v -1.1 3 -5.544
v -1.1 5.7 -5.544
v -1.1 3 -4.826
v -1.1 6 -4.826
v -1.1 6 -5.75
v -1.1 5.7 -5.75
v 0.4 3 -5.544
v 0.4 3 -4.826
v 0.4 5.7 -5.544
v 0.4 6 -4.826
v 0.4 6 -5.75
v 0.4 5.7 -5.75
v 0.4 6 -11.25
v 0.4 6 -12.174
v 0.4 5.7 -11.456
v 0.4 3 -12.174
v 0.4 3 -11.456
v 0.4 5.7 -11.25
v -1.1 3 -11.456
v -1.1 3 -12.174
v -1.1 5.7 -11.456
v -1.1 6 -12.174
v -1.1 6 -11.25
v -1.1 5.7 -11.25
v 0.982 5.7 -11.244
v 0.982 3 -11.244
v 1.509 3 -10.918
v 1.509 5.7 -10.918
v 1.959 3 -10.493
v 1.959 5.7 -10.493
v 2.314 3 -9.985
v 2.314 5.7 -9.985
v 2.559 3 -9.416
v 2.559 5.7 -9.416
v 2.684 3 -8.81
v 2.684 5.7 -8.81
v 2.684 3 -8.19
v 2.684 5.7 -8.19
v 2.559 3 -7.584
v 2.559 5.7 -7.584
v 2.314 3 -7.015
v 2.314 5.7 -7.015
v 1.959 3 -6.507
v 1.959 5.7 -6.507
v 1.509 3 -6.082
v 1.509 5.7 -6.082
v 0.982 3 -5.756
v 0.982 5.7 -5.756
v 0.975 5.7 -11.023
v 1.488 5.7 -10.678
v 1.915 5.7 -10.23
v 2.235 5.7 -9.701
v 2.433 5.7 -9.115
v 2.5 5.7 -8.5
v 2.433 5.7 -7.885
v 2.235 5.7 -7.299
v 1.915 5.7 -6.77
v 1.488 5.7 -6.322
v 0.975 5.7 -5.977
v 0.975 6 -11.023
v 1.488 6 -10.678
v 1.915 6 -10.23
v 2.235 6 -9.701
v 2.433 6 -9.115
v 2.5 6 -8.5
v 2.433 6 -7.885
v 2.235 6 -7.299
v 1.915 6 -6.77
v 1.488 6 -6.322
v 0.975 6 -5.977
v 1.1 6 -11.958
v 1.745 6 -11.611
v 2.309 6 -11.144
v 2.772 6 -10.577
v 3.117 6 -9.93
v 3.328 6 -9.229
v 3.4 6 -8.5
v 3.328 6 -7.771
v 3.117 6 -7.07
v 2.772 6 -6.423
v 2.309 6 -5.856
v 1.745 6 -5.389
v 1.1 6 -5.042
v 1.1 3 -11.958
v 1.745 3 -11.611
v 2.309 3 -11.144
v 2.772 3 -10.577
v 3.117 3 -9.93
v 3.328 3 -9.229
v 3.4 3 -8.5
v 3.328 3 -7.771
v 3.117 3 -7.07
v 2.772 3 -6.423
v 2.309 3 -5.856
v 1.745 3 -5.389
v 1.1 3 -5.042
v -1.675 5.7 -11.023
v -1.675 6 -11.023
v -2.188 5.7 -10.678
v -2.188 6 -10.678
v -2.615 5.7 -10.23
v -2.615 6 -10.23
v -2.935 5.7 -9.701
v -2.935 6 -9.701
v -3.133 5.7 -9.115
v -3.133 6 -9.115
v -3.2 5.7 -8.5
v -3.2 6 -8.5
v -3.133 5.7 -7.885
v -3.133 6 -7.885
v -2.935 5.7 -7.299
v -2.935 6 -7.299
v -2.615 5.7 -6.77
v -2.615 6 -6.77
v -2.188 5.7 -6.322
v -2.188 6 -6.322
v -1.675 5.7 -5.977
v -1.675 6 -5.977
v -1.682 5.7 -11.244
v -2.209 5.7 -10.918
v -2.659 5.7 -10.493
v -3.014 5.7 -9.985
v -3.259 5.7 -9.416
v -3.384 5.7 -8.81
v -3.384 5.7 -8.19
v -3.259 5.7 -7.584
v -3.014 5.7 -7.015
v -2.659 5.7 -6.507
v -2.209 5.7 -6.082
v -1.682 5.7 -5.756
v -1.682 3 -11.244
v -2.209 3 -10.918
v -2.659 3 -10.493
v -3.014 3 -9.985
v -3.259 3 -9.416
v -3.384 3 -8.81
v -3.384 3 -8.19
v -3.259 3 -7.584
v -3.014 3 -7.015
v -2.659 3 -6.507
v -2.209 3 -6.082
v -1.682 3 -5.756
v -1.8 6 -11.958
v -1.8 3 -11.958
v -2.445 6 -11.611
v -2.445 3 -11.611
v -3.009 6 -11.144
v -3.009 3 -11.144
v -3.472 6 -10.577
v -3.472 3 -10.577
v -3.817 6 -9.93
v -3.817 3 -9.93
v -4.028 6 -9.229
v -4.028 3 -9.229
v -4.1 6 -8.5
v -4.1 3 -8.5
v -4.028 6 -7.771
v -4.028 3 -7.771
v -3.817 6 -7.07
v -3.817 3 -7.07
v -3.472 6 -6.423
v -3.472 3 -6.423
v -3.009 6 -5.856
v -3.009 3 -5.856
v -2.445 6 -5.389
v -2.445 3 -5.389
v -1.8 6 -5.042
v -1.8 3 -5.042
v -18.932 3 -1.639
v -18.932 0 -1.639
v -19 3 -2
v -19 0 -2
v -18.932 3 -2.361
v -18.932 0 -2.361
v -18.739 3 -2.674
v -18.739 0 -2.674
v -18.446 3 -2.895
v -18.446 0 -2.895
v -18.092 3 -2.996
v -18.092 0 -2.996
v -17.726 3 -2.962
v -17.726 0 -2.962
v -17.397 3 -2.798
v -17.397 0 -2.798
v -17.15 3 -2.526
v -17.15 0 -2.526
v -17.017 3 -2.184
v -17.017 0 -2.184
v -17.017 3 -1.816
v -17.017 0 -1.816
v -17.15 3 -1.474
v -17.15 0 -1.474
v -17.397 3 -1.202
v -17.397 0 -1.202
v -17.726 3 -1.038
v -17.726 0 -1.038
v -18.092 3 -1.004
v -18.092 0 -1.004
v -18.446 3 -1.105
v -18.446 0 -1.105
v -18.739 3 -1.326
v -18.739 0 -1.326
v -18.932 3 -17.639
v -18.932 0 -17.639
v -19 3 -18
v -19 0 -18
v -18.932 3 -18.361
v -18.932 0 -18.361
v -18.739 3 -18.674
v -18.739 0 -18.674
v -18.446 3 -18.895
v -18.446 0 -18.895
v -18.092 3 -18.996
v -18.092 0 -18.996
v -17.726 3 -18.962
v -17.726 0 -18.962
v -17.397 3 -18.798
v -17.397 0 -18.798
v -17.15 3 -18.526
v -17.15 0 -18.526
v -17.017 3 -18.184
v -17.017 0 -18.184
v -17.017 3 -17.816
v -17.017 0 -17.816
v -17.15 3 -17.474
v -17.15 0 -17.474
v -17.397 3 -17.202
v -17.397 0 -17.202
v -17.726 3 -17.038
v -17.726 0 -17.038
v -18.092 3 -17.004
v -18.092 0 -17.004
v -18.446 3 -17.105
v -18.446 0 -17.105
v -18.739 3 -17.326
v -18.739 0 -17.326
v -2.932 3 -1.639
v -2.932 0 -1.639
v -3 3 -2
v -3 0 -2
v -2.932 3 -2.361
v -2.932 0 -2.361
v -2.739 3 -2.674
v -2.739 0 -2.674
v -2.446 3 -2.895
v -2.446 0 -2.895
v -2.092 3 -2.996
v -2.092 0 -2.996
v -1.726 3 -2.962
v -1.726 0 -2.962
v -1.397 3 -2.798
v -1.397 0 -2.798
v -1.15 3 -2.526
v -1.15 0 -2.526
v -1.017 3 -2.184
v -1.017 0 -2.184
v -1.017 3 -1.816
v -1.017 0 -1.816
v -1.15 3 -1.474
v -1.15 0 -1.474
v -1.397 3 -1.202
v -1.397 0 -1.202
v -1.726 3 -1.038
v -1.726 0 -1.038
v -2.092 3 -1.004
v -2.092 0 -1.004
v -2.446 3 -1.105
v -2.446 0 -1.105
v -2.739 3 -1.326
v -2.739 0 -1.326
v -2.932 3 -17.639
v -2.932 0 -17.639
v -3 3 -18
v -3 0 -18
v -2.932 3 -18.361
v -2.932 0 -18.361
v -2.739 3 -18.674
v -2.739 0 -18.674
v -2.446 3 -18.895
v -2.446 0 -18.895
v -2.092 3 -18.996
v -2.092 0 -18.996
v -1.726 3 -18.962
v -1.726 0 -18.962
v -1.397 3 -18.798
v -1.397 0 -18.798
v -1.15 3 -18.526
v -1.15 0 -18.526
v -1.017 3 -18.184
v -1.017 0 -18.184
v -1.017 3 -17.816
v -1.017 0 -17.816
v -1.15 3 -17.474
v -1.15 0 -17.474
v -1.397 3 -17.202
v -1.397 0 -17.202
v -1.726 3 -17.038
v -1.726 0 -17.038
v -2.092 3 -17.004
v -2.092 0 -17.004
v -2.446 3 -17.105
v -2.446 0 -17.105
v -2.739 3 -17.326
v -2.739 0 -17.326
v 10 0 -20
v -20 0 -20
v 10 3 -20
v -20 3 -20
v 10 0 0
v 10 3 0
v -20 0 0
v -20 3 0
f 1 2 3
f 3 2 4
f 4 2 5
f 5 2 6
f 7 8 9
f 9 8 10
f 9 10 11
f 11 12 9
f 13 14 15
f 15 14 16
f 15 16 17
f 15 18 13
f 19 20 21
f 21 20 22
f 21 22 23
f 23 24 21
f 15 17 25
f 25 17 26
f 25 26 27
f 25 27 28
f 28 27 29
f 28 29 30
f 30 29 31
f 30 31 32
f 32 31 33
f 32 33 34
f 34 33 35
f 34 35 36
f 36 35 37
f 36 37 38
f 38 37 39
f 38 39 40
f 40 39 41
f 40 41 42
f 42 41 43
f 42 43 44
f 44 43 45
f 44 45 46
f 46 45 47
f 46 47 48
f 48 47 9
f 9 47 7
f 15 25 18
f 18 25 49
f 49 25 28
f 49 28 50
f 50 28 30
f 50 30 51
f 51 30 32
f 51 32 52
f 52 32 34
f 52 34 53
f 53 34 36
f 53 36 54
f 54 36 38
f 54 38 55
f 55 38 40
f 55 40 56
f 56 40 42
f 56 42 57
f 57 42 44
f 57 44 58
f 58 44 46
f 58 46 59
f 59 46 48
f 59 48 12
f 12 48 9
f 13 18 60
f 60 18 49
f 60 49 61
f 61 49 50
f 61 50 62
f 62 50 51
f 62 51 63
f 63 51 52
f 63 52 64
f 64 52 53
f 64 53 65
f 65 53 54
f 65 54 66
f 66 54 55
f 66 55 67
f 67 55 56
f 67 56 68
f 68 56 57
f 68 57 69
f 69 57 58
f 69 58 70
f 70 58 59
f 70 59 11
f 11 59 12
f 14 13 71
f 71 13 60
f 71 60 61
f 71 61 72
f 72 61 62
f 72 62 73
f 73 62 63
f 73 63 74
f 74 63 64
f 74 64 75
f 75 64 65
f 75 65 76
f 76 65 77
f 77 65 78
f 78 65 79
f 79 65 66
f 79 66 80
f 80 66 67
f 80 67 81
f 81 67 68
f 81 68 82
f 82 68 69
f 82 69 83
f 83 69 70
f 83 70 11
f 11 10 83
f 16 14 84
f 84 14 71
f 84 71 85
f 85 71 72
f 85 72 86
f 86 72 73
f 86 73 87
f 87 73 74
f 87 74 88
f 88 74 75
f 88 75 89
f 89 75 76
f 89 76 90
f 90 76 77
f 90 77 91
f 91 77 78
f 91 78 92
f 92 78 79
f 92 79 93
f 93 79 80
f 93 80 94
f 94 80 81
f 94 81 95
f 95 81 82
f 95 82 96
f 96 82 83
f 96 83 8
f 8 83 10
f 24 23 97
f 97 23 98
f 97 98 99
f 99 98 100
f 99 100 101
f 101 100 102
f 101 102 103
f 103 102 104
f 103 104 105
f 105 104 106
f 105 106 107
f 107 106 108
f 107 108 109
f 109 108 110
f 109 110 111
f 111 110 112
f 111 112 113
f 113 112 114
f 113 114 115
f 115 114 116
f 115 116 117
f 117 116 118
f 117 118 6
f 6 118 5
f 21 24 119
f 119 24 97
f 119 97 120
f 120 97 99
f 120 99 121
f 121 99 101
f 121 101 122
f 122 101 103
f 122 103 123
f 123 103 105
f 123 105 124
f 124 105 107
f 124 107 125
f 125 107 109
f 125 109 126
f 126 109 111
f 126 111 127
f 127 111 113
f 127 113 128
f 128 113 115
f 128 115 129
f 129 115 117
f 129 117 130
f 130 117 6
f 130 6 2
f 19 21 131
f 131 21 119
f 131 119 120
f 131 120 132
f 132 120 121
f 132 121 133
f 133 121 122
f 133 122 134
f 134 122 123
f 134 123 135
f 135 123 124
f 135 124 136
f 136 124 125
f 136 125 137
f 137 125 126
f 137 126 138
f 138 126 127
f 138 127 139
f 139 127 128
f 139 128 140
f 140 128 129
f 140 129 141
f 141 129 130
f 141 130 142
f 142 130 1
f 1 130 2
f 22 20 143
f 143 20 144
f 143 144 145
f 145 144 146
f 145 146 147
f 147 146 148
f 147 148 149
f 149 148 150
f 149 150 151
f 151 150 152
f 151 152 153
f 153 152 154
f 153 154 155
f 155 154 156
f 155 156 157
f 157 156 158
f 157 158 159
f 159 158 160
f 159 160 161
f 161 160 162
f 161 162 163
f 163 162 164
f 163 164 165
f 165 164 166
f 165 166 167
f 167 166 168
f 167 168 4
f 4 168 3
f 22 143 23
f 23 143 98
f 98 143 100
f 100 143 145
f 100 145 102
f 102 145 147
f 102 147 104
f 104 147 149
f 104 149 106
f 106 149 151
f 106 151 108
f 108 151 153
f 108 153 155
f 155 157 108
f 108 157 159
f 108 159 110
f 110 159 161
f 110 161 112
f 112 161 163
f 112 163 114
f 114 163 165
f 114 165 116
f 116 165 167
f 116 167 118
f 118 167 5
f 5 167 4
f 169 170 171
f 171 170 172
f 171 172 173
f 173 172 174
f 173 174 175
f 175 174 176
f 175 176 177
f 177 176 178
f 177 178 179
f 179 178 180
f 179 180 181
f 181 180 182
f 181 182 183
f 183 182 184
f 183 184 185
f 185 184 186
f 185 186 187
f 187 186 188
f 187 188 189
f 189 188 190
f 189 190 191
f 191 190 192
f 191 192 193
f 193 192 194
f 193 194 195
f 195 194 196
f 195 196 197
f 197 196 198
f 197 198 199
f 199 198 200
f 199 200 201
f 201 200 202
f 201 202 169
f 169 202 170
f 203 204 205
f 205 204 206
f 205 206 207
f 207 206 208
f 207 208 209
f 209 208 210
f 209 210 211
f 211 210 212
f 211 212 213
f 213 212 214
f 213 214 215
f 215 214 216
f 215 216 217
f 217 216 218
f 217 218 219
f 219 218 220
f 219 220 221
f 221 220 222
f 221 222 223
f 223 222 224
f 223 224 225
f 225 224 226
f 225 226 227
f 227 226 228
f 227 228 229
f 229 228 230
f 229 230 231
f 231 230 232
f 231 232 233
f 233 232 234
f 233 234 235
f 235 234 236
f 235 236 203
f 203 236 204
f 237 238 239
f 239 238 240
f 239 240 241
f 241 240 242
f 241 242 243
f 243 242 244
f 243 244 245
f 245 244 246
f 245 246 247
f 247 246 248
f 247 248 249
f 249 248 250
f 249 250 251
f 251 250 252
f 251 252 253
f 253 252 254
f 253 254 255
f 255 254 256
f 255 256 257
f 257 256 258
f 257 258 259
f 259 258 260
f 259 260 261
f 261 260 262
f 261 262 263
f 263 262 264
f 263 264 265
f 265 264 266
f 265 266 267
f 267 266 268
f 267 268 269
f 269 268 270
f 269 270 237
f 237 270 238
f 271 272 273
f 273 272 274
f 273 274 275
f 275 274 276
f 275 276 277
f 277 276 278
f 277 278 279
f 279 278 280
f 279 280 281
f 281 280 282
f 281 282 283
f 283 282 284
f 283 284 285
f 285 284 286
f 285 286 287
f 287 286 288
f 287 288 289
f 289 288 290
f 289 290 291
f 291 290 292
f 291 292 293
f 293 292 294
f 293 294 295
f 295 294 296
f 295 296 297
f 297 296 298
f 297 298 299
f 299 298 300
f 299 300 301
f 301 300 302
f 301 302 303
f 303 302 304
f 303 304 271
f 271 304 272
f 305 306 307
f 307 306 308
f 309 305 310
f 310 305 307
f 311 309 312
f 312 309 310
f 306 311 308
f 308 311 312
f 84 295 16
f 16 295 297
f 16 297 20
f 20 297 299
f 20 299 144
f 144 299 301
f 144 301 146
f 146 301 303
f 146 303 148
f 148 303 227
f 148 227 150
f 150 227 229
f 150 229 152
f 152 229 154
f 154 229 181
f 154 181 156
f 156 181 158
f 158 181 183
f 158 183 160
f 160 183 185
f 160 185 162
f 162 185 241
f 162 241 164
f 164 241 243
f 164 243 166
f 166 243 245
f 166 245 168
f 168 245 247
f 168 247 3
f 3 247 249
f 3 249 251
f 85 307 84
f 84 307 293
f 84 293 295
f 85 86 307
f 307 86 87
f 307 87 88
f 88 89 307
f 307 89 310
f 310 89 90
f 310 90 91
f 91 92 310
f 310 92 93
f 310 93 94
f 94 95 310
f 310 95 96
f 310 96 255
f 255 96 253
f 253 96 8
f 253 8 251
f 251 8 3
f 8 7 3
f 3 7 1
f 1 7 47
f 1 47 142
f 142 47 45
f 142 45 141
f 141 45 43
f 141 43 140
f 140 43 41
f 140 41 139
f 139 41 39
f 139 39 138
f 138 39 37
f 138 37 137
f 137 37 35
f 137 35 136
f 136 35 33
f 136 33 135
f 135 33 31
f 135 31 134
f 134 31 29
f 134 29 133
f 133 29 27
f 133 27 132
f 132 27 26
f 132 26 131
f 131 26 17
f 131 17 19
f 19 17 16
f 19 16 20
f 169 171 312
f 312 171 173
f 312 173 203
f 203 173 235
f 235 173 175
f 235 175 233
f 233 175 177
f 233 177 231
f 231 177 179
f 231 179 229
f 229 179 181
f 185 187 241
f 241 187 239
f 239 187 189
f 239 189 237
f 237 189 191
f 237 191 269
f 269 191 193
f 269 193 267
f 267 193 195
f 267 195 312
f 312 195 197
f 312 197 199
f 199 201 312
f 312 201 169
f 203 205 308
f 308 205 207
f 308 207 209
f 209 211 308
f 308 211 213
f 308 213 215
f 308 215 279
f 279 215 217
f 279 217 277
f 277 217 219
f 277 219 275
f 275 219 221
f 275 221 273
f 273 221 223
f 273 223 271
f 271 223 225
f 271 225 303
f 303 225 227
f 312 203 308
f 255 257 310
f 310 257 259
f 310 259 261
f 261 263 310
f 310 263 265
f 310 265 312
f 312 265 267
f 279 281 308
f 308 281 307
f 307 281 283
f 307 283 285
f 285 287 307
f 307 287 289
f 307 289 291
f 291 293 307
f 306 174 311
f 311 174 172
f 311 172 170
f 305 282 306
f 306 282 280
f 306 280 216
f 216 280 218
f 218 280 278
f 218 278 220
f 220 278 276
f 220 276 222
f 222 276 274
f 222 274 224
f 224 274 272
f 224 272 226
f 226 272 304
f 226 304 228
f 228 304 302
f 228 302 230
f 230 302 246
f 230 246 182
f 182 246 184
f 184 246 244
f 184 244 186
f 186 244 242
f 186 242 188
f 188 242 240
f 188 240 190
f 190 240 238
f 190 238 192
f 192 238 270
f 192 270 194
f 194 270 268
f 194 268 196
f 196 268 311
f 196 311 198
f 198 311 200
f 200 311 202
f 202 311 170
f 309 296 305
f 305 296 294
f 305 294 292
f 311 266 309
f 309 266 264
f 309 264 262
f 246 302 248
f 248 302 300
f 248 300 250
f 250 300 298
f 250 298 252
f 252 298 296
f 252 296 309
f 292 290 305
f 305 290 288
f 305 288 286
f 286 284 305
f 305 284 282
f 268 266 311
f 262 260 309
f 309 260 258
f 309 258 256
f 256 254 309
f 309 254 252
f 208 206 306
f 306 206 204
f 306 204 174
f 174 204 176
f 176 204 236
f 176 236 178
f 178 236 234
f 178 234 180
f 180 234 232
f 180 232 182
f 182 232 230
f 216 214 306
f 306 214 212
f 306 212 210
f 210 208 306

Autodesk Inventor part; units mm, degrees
ref_plane "YZ Plane" through (0, 0, 0) normal (1, 0, 0) x (0, 1, 0)
ref_plane "XZ Plane" through (0, 0, 0) normal (0, 1, 0) x (-1, 0, 0)
ref_plane "XY Plane" through (0, 0, 0) normal (0, 0, 1) x (1, 0, 0)
sketch "Sketch1" plane through (0, 0, 0) normal (0, 1, 0) x (-1, 0, 0)
  line L0 (0, 0) -> (20, 0)
  line L1 (20, 0) -> (20, -20)
  line L2 (20, -20) -> (0, -20)
  line L3 (0, -20) -> (0, 0)
  line L4 (20, 0) -> (18, 0)
  line L5 (18, 0) -> (18, -2)
  line L6 (18, -2) -> (20, -2)
  line L7 (20, -2) -> (20, 0)
  line L8 (20, -20) -> (18, -20)
  line L9 (18, -20) -> (18, -18)
  line L10 (18, -18) -> (20, -18)
  line L11 (20, -18) -> (20, -20)
  line L12 (0, 0) -> (2, 0)
  line L13 (2, 0) -> (2, -2)
  line L14 (2, -2) -> (0, -2)
  line L15 (0, -2) -> (0, 0)
  line L16 (0, -20) -> (2, -20)
  line L17 (2, -20) -> (2, -18)
  line L18 (2, -18) -> (0, -18)
  line L19 (0, -18) -> (0, -20)
  circle A0 centre (2, -2) radius 1
  circle A1 centre (2, -18) radius 1
  circle A2 centre (18, -18) radius 1
  circle A3 centre (18, -2) radius 1
  line L20 (0, 0) -> (-10, 0)
  line L21 (-10, 0) -> (-10, -20)
  line L22 (-10, -20) -> (0, -20)
  line L23 (0, -20) -> (0, 0)
  dimension "d0" = 20
  dimension "d1" = 20
  dimension "d2" = 2
  dimension "d3" = 2
  dimension "d4" = 2
  dimension "d5" = 2
  dimension "d6" = 2
  dimension "d7" = 2
  dimension "d8" = 2
  dimension "d9" = 2
  dimension "d10" = 2
  dimension "d11" = 2
  dimension "d12" = 2
  dimension "d13" = 2
  dimension "d16" = 10
extrude "Extrusion1" add sketch "Sketch1" along normal blind 3 contours L0 L13 A0 L14 L3 | L3 L22 L21 L20 | L0 L5 A3 L6 L1 L10 A2 L9 L2 L17 A1 L18 L3 L14 A0 L13 | L0 L1 L6 A3 L5 | L18 A1 L17 L2 L3 | L1 L2 L9 A2 L10
sketch "Sketch2" plane through (0, 0, 0) normal (0, -1, 0) x (1, 0, 0)
  line L0 (-20, 0) -> (10, 0) projected
  line L1 (10, 0) -> (-0.35, 0)
  line L2 (-0.35, 0) -> (-0.35, -8.5)
  line L3 (-0.35, -8.5) -> (10, -8.5)
  line L4 (10, -8.5) -> (10, 0)
  circle A0 centre (-0.35, -8.5) radius 3.05
  circle A1 centre (-0.35, -8.5) radius 3.75
  point P0 (0, 0)
  dimension "d17" = 10.35
  dimension "d18" = 8.5
  dimension "d19" = 6.1
  dimension "d20" = 7.5
extrude "Extrusion2" add sketch "Sketch2" against normal blind 6 contours A1 L3 A0 L2 | L2 A0 L3 A1
sketch "Sketch3" plane through (-0.35, 6, -8.5) normal (0, 1, 0) x (-1, 0, 0)
  circle A0 centre (0, 0) radius 3.05 projected
  circle A1 centre (0, 0) radius 3.05
  circle A2 centre (0, 0) radius 2.85
  point P0 (-0.35, 8.5)
  dimension "d23" = 5.7
extrude "Extrusion3" add sketch "Sketch3" against normal blind 0.3
sketch "Sketch4" plane through (-0.35, 6, -8.5) normal (0, 1, 0) x (-1, 0, 0)
  line L0 (-0.75, -4.5946) -> (0.75, -4.5946)
  line L1 (0.75, -4.5946) -> (0.75, 4.5946)
  line L2 (0.75, 4.5946) -> (-0.75, 4.5946)
  line L3 (-0.75, 4.5946) -> (-0.75, -4.5946)
  circle A0 centre (0, 0) radius 2.85 projected
  line L4 (-0.75, -4.5946) -> (0.75, 4.5946) construction
  line L5 (0.75, -4.5946) -> (-0.75, 4.5946) construction
  point P0 (-0.35, 8.5)
  dimension "d26" = 1.5
extrude "Extrusion4" cut sketch "Sketch4" against normal blind 3 contours L3 A0 L1 L0 | L3 A0 L1 | L3 L2 L1 A0
properties part number "bearing_support"
